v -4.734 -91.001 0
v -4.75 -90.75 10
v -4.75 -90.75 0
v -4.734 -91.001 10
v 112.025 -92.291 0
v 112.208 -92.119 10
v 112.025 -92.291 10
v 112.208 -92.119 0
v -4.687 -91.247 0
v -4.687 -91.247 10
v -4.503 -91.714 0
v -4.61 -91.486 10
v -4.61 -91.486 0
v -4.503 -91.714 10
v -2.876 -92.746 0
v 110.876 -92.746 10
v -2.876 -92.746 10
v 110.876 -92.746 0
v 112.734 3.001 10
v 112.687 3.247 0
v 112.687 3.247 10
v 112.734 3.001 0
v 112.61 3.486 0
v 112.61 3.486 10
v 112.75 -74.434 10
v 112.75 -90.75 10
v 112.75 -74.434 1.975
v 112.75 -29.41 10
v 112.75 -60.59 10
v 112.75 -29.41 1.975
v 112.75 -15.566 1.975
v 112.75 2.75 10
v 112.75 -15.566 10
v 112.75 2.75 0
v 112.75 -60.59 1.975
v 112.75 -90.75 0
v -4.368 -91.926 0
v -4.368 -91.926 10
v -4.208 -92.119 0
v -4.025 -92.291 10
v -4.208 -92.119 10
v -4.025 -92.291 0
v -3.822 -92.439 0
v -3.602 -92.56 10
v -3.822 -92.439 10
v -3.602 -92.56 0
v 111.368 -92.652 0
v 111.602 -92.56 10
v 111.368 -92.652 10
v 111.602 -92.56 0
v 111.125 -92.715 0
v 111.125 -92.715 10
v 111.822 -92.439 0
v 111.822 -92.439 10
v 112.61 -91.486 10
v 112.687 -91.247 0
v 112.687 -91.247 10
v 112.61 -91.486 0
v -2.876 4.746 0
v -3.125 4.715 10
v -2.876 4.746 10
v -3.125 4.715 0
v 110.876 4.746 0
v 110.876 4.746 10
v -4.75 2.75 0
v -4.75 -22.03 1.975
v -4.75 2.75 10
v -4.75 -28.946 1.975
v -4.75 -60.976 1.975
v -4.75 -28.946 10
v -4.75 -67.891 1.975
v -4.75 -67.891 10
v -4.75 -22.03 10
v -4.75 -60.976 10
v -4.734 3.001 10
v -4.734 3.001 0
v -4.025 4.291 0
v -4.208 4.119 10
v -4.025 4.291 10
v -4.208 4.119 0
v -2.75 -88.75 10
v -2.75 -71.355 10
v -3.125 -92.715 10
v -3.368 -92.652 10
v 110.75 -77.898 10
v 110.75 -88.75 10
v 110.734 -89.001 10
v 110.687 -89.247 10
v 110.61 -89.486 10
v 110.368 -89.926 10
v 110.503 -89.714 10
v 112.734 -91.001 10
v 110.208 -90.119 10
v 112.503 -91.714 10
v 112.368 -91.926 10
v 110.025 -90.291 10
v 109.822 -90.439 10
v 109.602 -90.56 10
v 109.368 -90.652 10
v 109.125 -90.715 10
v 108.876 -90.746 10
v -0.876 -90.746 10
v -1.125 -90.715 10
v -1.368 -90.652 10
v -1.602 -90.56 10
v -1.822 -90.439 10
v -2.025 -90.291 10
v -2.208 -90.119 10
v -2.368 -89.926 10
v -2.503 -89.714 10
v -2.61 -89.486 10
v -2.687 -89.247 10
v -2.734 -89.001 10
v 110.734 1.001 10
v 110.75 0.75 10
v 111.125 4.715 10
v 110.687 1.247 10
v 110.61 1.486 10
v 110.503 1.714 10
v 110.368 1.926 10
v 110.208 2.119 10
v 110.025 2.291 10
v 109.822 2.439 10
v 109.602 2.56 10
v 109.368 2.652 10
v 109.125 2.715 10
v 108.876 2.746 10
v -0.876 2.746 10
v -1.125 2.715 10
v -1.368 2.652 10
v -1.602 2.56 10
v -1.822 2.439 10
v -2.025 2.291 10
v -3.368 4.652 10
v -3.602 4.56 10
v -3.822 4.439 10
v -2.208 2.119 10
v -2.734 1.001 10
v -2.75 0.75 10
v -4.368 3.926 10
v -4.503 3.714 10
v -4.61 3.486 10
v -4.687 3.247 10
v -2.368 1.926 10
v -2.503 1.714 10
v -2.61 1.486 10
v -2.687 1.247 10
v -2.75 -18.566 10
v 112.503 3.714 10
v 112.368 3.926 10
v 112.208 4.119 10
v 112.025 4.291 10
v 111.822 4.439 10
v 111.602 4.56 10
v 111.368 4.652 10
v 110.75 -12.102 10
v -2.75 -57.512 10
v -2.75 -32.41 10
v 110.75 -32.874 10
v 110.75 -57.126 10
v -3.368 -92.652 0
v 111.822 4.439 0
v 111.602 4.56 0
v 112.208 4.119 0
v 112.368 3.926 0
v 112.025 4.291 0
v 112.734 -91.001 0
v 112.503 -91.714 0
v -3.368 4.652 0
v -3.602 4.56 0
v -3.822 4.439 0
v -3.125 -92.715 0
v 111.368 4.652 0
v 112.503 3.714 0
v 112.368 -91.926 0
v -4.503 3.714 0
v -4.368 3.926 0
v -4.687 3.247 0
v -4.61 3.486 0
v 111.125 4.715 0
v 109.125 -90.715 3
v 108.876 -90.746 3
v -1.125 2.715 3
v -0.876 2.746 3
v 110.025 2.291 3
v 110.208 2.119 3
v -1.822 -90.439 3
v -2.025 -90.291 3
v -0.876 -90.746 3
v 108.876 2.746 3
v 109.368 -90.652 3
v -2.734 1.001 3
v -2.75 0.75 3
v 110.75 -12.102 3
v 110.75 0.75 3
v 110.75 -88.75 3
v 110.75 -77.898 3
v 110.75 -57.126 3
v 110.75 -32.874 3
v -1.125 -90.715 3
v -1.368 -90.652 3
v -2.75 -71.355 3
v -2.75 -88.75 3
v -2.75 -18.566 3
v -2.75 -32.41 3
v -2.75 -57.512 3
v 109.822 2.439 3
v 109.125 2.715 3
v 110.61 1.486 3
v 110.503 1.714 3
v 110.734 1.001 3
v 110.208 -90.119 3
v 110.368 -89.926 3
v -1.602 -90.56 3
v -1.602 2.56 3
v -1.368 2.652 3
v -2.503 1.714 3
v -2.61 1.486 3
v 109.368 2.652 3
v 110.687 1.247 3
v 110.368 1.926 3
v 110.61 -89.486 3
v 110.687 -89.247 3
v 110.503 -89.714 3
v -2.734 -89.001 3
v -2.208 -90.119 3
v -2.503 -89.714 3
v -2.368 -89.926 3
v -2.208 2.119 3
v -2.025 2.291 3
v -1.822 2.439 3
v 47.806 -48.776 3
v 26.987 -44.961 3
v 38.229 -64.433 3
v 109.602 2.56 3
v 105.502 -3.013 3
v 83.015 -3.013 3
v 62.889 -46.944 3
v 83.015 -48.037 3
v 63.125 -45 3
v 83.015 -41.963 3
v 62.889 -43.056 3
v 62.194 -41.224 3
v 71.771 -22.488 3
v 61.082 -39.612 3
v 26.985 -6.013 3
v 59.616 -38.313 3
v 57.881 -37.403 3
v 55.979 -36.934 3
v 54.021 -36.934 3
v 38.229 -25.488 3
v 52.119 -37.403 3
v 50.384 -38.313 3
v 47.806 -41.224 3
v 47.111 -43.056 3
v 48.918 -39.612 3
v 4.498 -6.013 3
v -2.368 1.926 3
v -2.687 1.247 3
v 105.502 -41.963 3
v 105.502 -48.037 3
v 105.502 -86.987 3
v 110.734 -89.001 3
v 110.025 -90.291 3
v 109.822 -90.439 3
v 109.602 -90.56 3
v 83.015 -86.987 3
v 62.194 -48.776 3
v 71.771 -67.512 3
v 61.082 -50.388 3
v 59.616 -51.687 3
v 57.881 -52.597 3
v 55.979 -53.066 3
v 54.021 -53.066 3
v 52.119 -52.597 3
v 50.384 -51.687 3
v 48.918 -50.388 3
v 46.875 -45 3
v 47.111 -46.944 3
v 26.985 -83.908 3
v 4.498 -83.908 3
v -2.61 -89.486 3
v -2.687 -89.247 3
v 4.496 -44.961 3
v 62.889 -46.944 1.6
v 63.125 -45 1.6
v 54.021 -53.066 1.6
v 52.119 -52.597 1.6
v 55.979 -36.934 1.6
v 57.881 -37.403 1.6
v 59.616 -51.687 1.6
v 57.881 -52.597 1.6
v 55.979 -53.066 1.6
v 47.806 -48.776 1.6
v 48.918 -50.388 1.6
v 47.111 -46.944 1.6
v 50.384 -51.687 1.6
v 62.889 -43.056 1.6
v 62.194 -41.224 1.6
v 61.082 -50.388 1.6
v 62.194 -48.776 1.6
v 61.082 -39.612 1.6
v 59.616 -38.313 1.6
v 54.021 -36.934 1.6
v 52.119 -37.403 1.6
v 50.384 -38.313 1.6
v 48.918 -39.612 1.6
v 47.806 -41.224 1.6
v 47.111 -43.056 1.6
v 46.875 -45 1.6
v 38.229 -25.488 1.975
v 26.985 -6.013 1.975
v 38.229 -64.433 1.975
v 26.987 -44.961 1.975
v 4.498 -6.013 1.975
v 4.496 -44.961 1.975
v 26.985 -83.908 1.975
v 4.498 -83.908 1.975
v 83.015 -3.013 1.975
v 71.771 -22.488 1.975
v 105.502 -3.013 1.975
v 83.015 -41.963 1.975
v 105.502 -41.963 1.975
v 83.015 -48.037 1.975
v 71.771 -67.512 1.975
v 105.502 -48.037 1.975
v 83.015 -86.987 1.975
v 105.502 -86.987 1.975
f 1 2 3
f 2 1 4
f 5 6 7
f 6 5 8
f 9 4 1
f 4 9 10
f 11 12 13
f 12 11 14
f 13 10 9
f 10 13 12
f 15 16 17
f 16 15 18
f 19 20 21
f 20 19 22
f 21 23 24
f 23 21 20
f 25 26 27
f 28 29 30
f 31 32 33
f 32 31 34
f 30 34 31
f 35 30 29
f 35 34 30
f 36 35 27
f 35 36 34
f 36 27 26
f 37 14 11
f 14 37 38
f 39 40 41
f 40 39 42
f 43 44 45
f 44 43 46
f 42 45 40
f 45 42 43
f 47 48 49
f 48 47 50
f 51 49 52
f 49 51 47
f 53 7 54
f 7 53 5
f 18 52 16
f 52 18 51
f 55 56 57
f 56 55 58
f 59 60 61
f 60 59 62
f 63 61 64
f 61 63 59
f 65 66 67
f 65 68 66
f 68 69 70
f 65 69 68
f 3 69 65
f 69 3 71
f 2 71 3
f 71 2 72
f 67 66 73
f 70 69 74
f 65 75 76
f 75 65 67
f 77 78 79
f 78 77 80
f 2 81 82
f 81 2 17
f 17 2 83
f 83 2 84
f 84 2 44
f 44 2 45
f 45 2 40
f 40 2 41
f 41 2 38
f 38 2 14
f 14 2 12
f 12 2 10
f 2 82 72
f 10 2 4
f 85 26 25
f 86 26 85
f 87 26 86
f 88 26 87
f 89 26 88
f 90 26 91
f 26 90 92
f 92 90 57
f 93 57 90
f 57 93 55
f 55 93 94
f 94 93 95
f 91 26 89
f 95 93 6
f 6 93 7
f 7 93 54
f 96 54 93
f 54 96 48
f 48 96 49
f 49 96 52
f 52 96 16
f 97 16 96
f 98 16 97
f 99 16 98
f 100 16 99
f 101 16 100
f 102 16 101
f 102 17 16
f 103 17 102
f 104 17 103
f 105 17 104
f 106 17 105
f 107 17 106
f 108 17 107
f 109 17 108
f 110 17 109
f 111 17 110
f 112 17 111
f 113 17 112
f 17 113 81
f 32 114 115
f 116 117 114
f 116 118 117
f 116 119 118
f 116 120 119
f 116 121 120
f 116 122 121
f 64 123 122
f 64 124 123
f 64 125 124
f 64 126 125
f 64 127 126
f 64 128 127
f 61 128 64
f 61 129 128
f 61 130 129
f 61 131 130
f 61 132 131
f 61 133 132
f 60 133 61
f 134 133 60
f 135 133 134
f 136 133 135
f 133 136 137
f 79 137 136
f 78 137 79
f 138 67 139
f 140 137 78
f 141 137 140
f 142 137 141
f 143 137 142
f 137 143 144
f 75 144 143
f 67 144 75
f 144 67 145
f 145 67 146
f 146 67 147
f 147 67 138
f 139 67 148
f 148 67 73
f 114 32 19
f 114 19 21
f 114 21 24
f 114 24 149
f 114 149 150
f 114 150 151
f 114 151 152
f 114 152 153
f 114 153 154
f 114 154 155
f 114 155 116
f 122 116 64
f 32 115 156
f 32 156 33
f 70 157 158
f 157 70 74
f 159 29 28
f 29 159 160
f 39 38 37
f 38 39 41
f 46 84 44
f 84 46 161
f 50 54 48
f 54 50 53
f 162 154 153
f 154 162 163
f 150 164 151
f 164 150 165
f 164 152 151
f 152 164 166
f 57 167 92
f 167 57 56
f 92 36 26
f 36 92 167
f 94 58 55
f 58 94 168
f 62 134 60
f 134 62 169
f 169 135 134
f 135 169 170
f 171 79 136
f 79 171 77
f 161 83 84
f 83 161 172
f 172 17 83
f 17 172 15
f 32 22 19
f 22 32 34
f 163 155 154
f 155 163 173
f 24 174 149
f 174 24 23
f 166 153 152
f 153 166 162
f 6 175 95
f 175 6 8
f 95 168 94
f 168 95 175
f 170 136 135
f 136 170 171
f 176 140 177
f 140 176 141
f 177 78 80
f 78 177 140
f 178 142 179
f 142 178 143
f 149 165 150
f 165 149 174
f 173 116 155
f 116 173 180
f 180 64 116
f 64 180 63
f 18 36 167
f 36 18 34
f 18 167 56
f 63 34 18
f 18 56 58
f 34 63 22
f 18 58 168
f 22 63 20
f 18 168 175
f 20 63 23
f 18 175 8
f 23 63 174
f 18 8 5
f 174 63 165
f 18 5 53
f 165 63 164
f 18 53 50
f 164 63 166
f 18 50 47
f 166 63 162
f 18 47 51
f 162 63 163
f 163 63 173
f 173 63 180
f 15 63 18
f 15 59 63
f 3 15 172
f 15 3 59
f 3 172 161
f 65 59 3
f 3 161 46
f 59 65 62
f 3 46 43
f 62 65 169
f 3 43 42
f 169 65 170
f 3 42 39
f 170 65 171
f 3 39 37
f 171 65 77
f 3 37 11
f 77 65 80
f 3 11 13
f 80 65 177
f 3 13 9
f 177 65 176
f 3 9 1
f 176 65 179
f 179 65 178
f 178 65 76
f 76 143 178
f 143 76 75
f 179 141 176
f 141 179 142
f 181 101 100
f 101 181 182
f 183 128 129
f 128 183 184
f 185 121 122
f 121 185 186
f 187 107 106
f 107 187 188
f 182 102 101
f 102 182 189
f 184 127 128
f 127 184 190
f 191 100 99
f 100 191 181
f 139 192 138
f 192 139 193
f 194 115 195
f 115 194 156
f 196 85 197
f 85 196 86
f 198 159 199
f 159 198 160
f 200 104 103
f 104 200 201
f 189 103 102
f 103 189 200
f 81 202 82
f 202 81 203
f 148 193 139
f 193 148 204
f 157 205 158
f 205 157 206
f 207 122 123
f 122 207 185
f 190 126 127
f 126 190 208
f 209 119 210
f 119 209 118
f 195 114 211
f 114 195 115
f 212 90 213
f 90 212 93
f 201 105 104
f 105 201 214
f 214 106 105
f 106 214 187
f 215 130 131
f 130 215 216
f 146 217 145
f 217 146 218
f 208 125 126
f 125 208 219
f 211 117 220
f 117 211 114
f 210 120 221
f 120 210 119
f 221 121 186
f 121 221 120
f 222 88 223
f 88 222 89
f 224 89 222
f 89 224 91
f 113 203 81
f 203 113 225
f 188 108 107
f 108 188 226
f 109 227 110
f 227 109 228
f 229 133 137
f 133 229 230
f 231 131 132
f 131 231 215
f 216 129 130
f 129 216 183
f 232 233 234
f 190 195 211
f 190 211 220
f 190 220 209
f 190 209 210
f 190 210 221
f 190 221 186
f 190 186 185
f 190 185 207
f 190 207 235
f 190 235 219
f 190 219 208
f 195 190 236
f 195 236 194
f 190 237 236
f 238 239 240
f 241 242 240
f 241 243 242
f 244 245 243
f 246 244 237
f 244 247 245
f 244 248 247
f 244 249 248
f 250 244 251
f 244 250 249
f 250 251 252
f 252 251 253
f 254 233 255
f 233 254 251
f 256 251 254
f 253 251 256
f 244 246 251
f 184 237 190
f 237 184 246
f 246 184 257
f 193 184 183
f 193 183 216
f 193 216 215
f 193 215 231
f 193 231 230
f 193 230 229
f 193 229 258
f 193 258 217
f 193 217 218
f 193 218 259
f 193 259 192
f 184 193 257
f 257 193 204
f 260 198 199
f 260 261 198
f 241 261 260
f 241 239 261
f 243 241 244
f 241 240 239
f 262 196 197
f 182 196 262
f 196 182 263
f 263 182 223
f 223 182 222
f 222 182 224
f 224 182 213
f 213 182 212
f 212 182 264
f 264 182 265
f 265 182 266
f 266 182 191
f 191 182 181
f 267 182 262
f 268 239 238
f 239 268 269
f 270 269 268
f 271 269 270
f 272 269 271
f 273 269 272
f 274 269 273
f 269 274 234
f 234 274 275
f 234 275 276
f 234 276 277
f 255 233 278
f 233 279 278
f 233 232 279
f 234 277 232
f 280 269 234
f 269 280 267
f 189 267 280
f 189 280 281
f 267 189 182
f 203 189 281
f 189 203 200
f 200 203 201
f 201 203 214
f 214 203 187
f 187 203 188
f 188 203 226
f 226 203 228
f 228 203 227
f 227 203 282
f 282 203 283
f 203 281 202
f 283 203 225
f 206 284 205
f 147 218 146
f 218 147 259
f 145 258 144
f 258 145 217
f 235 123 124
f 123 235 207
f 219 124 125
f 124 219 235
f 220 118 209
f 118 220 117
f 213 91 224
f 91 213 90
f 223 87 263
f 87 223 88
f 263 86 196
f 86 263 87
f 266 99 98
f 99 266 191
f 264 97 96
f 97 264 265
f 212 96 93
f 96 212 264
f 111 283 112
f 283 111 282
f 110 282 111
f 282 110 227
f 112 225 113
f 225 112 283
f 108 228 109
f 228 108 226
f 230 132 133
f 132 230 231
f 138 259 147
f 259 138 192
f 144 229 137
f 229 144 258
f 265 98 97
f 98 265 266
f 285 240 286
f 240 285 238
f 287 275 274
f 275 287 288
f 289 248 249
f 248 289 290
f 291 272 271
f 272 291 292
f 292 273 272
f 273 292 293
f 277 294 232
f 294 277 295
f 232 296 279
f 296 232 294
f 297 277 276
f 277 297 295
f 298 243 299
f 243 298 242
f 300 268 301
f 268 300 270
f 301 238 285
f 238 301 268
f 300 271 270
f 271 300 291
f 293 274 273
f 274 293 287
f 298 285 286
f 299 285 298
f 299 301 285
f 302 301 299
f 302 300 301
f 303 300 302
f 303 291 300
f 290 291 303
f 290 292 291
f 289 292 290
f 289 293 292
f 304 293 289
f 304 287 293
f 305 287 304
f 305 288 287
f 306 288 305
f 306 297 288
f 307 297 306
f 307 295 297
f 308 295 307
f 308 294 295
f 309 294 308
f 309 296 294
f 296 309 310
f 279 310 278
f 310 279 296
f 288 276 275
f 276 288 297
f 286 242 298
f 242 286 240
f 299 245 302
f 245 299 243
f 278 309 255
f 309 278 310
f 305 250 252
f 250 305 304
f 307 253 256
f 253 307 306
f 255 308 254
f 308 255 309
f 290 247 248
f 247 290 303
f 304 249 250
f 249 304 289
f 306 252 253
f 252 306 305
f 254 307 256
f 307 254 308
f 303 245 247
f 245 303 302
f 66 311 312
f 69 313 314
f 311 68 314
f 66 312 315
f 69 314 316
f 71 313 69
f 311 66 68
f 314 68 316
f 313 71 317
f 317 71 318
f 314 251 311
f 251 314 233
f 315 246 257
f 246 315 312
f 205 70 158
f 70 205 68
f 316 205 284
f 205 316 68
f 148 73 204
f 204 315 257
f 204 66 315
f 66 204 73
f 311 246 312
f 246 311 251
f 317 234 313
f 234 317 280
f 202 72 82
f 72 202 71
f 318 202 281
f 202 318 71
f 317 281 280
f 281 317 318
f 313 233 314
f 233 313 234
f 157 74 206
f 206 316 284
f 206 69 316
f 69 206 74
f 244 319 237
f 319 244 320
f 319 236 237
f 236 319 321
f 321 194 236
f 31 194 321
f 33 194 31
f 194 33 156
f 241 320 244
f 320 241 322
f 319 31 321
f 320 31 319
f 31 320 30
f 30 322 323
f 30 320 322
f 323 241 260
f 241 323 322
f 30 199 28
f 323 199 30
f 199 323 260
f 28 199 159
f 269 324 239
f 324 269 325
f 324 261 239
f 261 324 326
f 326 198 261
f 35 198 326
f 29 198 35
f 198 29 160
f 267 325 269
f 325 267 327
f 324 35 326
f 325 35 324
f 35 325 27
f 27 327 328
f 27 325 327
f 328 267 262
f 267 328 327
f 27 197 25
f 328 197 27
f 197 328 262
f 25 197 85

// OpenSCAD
// file: HexPileLib.scad
module LeftPile(totalHeight, singlePileHeight, singlePileDiameter, pileCount){
    pileHeight = (pileCount * singlePileHeight) + .5;
    offset = singlePileDiameter * .15;
    translate([singlePileDiameter/2 - offset, singlePileDiameter/2, totalHeight - pileHeight])
        cylinder(pileHeight, d=singlePileDiameter, $fn=6);
}

module RightPile(totalHeight, singlePileHeight, singlePileDiameter, pileCount){
    translate([0, singlePileDiameter, 0])
        rotate([0, 0, 180])
            LeftPile(totalHeight, singlePileHeight, singlePileDiameter, pileCount);
}

module BottomPile(totalHeight, singlePileHeight, singlePileDiameter, pileCount){
    translate([singlePileDiameter, 0, 0])
        rotate([0, 0, 90])
            LeftPile(totalHeight, singlePileHeight, singlePileDiameter, pileCount);
}

module TopPile(totalHeight, singlePileHeight, singlePileDiameter, pileCount){
        rotate([0, 0, 270])
            LeftPile(totalHeight, singlePileHeight, singlePileDiameter, pileCount);
}
// file: ColonistsPlacePileLib.scad
include<HexPileLib.scad>
//25.82 by 32.82 by 2.15
singlePlacePileHeight = 2.15;
//flat to flat = d = 38.15
//D = d * 2/rt(3)
d = 38.15 + .8;
D = d * 2/sqrt(3);
singlePlacePileDiameter = D;

module LeftPlacePile(totalHeight, placePileCount){
    LeftPile(
        totalHeight,
        singlePlacePileHeight,
        singlePlacePileDiameter,
        placePileCount);
}

module RightPlacePile(totalHeight, placePileCount){
    RightPile(
        totalHeight,
        singlePlacePileHeight,
        singlePlacePileDiameter,
        placePileCount);
}

module BottomPlacePile(totalHeight, placePileCount){
    BottomPile(
        totalHeight,
        singlePlacePileHeight,
        singlePlacePileDiameter,
        placePileCount);
}

module TopPlacePile(totalHeight, placePileCount){
    TopPile(
        totalHeight,
        singlePlacePileHeight,
        singlePlacePileDiameter,
        placePileCount);
}

function placePileHeight(placePileCount) =
    (placePileCount * singlePlacePileHeight) + .5;

function actualPlacePileWidth() = singlePlacePileDiameter * .85;
    
// main file
include<ColonistsPlacePileLib.scad>
washerDiameter = 16.25;
washerHeight = 1.4;
lidHeight = 3;
height = 0;
wallThickness = 3;
length = 110;
width = 90;
rimThickness = 2;
rimPadding = .75;
rimHeight = 10;
marketMarkerDiameter = 14.9 + .5;
marketMarkerCount = 7;
marketMarkerHeight = 1;
portCount = 3.5;

extra = rimThickness + rimPadding;
totalLength = length + extra * 2;
totalWidth = width + extra * 2;

tileCount = 3.5;


mirror([0, 90, 0]) {

    difference() {

        translate([-extra, -extra, 0]) {
            difference() {
               
               $fn=50;
                minkowski()
                {
                    cube([totalLength-2, totalWidth-2, rimHeight - 1]);
                    cylinder(r=2,h=1);
                }
                translate([rimThickness, rimThickness, lidHeight]) {
                    minkowski()
                    {
                        cube([length + rimPadding * 2 - 2, width + rimPadding * 2 - 2, rimHeight - lidHeight]);
                        cylinder(r=2,h=1);
                    }
                }
            }
        }

        //    whitespace between boxes = (total length - (# of boxes * width of boxes)) / (# of boxes + 1)
        //    position of box n = whitespace * n + 1 + width of box * (n)

            translate([length/2,  width/2, lidHeight - washerHeight])
                cylinder(washerHeight, d=washerDiameter);
            translate([0, wallThickness, rimHeight])
                LeftPlacePile(height, tileCount);
            translate([0, wallThickness + singlePlacePileDiameter - wallThickness * 2 - .03, rimHeight])
                LeftPlacePile(height, tileCount);
            translate([length, 0, rimHeight])
                RightPlacePile(height, tileCount);
            translate([length, width - singlePlacePileDiameter, rimHeight])
                RightPlacePile(height, tileCount);
    }
}
